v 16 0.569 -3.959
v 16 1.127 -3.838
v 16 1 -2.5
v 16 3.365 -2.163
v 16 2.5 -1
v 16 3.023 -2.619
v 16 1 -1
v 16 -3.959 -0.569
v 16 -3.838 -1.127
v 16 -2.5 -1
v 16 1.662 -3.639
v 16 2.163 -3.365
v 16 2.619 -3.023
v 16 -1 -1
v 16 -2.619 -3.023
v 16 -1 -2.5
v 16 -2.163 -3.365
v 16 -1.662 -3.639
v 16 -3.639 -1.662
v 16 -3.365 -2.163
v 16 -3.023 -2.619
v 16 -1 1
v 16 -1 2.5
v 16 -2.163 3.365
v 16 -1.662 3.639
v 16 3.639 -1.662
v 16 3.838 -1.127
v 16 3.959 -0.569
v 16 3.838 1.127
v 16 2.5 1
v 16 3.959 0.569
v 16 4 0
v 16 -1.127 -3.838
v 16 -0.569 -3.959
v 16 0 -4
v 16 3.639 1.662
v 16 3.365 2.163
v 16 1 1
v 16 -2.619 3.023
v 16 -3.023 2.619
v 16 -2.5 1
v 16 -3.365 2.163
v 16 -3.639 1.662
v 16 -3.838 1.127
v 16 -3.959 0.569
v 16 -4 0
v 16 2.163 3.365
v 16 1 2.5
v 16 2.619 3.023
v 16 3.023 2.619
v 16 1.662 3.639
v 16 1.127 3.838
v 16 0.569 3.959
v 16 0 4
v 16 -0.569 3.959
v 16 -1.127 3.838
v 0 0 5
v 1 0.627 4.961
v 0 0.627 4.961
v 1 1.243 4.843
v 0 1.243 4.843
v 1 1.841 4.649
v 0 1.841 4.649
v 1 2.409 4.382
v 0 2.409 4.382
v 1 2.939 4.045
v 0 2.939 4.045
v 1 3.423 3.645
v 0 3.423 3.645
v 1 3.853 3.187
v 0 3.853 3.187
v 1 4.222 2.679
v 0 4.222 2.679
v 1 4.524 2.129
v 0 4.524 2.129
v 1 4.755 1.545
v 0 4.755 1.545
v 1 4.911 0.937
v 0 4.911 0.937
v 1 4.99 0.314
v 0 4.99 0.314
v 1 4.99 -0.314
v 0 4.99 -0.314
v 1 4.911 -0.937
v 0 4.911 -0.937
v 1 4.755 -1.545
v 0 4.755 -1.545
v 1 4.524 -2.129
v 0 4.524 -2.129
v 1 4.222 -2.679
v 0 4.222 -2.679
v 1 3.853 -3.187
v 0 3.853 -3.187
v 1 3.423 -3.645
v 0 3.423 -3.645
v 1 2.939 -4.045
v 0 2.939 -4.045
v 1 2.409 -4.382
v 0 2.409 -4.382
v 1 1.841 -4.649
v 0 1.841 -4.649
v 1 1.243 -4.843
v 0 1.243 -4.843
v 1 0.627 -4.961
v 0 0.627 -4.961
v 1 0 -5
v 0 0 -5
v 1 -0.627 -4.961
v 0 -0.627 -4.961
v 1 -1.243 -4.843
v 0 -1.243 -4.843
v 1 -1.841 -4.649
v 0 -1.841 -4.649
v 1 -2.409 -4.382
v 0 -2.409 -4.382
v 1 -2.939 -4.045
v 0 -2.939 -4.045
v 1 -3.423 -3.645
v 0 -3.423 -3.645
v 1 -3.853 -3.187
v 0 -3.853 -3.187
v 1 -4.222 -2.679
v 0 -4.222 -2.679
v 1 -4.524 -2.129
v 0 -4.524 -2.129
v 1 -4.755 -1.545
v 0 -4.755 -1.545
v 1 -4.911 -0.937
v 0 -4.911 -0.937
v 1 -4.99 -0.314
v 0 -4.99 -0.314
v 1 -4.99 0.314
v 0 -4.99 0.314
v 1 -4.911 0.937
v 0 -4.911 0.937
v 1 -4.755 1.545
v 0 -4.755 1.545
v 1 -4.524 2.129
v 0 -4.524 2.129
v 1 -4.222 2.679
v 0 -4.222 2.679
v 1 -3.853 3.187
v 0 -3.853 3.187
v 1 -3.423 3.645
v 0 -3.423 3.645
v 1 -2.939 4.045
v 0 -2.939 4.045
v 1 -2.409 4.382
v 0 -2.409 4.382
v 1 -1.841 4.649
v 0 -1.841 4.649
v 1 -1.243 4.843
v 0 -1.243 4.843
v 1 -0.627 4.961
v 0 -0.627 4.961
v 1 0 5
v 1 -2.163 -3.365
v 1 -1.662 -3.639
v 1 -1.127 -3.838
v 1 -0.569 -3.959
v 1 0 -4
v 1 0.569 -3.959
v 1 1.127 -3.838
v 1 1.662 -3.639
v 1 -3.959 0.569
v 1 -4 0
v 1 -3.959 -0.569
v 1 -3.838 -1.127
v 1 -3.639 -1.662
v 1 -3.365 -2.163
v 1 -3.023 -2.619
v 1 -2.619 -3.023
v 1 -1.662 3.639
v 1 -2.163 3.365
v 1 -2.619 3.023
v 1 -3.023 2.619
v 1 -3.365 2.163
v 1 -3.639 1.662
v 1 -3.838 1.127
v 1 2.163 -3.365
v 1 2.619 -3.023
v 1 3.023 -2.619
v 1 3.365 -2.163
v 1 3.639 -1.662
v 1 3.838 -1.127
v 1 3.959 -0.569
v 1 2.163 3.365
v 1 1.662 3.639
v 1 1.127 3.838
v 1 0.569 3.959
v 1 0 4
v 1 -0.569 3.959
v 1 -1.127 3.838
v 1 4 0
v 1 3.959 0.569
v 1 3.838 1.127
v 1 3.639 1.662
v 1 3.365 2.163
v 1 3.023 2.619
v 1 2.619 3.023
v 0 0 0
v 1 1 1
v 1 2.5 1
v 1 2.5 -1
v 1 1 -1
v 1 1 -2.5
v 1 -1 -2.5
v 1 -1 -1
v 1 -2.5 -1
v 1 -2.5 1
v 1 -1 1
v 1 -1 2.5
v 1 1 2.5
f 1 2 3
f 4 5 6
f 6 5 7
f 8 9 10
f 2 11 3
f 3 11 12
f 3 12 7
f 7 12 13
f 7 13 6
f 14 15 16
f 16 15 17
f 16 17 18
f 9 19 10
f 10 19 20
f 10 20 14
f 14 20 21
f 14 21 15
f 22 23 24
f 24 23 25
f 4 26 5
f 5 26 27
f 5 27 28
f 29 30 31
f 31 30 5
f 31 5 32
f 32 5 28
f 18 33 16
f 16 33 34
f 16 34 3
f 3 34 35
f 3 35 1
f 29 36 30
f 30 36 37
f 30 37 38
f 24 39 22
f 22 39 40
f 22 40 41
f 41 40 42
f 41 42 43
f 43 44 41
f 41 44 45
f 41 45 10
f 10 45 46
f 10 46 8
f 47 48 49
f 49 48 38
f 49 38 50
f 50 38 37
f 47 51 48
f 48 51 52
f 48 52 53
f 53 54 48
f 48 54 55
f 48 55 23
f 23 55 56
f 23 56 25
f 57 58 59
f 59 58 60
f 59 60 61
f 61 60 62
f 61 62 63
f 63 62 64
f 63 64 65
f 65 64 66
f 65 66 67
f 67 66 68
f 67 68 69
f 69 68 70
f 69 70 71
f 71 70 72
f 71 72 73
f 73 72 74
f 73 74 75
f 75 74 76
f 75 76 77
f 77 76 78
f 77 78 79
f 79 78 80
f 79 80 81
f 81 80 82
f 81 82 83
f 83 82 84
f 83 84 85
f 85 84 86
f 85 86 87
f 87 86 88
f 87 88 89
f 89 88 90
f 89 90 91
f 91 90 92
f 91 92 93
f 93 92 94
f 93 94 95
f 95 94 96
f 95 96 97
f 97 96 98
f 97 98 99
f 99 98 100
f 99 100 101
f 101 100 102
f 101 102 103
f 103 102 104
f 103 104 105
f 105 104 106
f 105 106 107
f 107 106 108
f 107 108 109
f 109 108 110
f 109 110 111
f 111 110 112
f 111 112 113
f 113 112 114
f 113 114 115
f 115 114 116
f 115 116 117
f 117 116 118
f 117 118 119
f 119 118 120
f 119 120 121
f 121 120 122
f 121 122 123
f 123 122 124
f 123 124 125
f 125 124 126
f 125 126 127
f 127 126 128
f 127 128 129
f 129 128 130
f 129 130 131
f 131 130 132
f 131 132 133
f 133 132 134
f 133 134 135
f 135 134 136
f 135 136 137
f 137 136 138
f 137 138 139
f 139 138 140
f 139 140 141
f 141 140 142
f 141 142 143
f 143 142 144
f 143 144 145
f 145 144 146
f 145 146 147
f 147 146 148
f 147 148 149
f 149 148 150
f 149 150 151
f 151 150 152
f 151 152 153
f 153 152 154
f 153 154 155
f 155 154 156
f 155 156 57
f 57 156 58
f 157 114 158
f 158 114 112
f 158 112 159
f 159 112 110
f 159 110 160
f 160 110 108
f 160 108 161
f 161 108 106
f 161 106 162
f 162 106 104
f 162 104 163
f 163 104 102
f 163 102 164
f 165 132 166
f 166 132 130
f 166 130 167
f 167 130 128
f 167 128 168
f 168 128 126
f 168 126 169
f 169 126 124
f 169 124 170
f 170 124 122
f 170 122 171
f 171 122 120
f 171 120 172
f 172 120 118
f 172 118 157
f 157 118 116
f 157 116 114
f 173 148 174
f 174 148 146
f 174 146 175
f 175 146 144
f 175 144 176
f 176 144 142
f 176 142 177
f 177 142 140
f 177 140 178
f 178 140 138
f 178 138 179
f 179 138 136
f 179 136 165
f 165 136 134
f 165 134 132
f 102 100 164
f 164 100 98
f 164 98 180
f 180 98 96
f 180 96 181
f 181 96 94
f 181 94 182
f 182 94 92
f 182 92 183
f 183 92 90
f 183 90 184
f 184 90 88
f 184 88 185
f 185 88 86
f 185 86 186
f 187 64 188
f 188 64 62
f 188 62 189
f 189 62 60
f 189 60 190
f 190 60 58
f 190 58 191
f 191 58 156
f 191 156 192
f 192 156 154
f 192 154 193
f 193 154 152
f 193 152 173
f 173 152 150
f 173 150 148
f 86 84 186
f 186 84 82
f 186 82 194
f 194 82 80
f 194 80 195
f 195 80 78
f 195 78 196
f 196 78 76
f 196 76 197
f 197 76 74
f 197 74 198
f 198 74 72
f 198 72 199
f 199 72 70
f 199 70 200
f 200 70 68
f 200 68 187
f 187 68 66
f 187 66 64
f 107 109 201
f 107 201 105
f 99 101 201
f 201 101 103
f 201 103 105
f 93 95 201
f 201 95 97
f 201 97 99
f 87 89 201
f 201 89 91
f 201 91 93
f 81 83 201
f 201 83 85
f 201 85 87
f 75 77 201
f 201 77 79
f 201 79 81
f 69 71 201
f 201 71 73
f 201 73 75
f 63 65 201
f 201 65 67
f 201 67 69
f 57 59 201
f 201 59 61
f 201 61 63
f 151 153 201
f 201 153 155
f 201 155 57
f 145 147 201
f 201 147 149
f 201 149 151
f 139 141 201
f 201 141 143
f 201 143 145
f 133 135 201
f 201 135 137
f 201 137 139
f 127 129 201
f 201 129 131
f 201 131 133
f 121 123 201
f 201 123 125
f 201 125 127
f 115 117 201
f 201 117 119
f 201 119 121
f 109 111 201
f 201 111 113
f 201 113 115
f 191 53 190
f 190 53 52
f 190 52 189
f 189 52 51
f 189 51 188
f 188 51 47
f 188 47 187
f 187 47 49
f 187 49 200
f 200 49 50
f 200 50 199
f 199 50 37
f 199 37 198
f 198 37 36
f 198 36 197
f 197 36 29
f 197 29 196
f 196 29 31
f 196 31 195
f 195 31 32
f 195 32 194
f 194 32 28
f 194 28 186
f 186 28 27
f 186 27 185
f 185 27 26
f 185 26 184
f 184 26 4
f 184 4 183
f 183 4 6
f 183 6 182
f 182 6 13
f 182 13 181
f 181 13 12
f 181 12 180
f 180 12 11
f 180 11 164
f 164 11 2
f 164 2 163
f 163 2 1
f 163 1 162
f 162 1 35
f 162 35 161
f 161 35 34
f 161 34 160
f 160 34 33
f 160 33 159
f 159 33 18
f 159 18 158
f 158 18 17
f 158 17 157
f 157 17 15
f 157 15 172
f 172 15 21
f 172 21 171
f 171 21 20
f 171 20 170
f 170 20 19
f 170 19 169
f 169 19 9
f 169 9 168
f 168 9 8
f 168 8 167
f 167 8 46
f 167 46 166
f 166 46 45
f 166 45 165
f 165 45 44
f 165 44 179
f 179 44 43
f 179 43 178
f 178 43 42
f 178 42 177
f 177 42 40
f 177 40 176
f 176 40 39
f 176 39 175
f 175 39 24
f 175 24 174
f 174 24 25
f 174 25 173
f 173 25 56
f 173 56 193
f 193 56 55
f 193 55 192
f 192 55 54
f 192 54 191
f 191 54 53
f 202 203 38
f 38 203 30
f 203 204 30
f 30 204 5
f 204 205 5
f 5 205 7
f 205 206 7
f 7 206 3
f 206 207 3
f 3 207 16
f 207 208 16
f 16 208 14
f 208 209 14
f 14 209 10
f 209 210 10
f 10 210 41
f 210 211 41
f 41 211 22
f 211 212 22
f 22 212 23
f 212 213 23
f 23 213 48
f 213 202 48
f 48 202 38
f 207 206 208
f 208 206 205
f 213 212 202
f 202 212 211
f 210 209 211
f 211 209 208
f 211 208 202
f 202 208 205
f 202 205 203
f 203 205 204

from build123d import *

# Parameters (mm, degrees)
SKETCH1_R           = 5
BOSS_EXTRUDE2_DEPTH = 1
SKETCH2_R           = 4
BOSS_EXTRUDE3_DEPTH = 15
CUT_EXTRUDE1_DEPTH  = 15


with BuildPart() as part:
    # Sketch1 → Boss-Extrude2 (new body)
    with BuildSketch(Plane(origin=(0, 0, 0), x_dir=(0, 0, -1), z_dir=(1, 0, 0))):
        Circle(SKETCH1_R)
    extrude(amount=BOSS_EXTRUDE2_DEPTH)

    # Sketch2 → Boss-Extrude3 (add)
    with BuildSketch(Plane(origin=(1, 0, 0), x_dir=(0, 0, -1), z_dir=(1, 0, 0))):
        Circle(SKETCH2_R)
    extrude(amount=BOSS_EXTRUDE3_DEPTH)

    # Sketch4 → Cut-Extrude1 (cut)
    with BuildSketch(Plane(origin=(16, 0, 0), x_dir=(0, 0, -1), z_dir=(1, 0, 0))):
        Polygon((1, 2.5), (0, 2.5), (-1, 2.5), (-1, 1), (0, 1), (1, 1), align=None)
        Polygon((0, 1), (-1, 1), (-1, 0), (-1, -1), (-0.604082815, -1), (1, -1), (1, 0), (1, 1), align=None)
        Polygon((2.5, 1), (1, 1), (1, 0), (1, -1), (2.5, -1), (2.5, 0), align=None)
        Polygon((-1, 0), (-1, 1), (-2.5, 1), (-2.5, 0), (-2.5, -1), (-1, -1), align=None)
        Polygon((-0.604082815, -1), (-1, -1), (-1, -2.5), (-0.604082815, -2.5), (1, -2.5), (1, -1), align=None)
    extrude(amount=-CUT_EXTRUDE1_DEPTH, mode=Mode.SUBTRACT)


solid = part.part
